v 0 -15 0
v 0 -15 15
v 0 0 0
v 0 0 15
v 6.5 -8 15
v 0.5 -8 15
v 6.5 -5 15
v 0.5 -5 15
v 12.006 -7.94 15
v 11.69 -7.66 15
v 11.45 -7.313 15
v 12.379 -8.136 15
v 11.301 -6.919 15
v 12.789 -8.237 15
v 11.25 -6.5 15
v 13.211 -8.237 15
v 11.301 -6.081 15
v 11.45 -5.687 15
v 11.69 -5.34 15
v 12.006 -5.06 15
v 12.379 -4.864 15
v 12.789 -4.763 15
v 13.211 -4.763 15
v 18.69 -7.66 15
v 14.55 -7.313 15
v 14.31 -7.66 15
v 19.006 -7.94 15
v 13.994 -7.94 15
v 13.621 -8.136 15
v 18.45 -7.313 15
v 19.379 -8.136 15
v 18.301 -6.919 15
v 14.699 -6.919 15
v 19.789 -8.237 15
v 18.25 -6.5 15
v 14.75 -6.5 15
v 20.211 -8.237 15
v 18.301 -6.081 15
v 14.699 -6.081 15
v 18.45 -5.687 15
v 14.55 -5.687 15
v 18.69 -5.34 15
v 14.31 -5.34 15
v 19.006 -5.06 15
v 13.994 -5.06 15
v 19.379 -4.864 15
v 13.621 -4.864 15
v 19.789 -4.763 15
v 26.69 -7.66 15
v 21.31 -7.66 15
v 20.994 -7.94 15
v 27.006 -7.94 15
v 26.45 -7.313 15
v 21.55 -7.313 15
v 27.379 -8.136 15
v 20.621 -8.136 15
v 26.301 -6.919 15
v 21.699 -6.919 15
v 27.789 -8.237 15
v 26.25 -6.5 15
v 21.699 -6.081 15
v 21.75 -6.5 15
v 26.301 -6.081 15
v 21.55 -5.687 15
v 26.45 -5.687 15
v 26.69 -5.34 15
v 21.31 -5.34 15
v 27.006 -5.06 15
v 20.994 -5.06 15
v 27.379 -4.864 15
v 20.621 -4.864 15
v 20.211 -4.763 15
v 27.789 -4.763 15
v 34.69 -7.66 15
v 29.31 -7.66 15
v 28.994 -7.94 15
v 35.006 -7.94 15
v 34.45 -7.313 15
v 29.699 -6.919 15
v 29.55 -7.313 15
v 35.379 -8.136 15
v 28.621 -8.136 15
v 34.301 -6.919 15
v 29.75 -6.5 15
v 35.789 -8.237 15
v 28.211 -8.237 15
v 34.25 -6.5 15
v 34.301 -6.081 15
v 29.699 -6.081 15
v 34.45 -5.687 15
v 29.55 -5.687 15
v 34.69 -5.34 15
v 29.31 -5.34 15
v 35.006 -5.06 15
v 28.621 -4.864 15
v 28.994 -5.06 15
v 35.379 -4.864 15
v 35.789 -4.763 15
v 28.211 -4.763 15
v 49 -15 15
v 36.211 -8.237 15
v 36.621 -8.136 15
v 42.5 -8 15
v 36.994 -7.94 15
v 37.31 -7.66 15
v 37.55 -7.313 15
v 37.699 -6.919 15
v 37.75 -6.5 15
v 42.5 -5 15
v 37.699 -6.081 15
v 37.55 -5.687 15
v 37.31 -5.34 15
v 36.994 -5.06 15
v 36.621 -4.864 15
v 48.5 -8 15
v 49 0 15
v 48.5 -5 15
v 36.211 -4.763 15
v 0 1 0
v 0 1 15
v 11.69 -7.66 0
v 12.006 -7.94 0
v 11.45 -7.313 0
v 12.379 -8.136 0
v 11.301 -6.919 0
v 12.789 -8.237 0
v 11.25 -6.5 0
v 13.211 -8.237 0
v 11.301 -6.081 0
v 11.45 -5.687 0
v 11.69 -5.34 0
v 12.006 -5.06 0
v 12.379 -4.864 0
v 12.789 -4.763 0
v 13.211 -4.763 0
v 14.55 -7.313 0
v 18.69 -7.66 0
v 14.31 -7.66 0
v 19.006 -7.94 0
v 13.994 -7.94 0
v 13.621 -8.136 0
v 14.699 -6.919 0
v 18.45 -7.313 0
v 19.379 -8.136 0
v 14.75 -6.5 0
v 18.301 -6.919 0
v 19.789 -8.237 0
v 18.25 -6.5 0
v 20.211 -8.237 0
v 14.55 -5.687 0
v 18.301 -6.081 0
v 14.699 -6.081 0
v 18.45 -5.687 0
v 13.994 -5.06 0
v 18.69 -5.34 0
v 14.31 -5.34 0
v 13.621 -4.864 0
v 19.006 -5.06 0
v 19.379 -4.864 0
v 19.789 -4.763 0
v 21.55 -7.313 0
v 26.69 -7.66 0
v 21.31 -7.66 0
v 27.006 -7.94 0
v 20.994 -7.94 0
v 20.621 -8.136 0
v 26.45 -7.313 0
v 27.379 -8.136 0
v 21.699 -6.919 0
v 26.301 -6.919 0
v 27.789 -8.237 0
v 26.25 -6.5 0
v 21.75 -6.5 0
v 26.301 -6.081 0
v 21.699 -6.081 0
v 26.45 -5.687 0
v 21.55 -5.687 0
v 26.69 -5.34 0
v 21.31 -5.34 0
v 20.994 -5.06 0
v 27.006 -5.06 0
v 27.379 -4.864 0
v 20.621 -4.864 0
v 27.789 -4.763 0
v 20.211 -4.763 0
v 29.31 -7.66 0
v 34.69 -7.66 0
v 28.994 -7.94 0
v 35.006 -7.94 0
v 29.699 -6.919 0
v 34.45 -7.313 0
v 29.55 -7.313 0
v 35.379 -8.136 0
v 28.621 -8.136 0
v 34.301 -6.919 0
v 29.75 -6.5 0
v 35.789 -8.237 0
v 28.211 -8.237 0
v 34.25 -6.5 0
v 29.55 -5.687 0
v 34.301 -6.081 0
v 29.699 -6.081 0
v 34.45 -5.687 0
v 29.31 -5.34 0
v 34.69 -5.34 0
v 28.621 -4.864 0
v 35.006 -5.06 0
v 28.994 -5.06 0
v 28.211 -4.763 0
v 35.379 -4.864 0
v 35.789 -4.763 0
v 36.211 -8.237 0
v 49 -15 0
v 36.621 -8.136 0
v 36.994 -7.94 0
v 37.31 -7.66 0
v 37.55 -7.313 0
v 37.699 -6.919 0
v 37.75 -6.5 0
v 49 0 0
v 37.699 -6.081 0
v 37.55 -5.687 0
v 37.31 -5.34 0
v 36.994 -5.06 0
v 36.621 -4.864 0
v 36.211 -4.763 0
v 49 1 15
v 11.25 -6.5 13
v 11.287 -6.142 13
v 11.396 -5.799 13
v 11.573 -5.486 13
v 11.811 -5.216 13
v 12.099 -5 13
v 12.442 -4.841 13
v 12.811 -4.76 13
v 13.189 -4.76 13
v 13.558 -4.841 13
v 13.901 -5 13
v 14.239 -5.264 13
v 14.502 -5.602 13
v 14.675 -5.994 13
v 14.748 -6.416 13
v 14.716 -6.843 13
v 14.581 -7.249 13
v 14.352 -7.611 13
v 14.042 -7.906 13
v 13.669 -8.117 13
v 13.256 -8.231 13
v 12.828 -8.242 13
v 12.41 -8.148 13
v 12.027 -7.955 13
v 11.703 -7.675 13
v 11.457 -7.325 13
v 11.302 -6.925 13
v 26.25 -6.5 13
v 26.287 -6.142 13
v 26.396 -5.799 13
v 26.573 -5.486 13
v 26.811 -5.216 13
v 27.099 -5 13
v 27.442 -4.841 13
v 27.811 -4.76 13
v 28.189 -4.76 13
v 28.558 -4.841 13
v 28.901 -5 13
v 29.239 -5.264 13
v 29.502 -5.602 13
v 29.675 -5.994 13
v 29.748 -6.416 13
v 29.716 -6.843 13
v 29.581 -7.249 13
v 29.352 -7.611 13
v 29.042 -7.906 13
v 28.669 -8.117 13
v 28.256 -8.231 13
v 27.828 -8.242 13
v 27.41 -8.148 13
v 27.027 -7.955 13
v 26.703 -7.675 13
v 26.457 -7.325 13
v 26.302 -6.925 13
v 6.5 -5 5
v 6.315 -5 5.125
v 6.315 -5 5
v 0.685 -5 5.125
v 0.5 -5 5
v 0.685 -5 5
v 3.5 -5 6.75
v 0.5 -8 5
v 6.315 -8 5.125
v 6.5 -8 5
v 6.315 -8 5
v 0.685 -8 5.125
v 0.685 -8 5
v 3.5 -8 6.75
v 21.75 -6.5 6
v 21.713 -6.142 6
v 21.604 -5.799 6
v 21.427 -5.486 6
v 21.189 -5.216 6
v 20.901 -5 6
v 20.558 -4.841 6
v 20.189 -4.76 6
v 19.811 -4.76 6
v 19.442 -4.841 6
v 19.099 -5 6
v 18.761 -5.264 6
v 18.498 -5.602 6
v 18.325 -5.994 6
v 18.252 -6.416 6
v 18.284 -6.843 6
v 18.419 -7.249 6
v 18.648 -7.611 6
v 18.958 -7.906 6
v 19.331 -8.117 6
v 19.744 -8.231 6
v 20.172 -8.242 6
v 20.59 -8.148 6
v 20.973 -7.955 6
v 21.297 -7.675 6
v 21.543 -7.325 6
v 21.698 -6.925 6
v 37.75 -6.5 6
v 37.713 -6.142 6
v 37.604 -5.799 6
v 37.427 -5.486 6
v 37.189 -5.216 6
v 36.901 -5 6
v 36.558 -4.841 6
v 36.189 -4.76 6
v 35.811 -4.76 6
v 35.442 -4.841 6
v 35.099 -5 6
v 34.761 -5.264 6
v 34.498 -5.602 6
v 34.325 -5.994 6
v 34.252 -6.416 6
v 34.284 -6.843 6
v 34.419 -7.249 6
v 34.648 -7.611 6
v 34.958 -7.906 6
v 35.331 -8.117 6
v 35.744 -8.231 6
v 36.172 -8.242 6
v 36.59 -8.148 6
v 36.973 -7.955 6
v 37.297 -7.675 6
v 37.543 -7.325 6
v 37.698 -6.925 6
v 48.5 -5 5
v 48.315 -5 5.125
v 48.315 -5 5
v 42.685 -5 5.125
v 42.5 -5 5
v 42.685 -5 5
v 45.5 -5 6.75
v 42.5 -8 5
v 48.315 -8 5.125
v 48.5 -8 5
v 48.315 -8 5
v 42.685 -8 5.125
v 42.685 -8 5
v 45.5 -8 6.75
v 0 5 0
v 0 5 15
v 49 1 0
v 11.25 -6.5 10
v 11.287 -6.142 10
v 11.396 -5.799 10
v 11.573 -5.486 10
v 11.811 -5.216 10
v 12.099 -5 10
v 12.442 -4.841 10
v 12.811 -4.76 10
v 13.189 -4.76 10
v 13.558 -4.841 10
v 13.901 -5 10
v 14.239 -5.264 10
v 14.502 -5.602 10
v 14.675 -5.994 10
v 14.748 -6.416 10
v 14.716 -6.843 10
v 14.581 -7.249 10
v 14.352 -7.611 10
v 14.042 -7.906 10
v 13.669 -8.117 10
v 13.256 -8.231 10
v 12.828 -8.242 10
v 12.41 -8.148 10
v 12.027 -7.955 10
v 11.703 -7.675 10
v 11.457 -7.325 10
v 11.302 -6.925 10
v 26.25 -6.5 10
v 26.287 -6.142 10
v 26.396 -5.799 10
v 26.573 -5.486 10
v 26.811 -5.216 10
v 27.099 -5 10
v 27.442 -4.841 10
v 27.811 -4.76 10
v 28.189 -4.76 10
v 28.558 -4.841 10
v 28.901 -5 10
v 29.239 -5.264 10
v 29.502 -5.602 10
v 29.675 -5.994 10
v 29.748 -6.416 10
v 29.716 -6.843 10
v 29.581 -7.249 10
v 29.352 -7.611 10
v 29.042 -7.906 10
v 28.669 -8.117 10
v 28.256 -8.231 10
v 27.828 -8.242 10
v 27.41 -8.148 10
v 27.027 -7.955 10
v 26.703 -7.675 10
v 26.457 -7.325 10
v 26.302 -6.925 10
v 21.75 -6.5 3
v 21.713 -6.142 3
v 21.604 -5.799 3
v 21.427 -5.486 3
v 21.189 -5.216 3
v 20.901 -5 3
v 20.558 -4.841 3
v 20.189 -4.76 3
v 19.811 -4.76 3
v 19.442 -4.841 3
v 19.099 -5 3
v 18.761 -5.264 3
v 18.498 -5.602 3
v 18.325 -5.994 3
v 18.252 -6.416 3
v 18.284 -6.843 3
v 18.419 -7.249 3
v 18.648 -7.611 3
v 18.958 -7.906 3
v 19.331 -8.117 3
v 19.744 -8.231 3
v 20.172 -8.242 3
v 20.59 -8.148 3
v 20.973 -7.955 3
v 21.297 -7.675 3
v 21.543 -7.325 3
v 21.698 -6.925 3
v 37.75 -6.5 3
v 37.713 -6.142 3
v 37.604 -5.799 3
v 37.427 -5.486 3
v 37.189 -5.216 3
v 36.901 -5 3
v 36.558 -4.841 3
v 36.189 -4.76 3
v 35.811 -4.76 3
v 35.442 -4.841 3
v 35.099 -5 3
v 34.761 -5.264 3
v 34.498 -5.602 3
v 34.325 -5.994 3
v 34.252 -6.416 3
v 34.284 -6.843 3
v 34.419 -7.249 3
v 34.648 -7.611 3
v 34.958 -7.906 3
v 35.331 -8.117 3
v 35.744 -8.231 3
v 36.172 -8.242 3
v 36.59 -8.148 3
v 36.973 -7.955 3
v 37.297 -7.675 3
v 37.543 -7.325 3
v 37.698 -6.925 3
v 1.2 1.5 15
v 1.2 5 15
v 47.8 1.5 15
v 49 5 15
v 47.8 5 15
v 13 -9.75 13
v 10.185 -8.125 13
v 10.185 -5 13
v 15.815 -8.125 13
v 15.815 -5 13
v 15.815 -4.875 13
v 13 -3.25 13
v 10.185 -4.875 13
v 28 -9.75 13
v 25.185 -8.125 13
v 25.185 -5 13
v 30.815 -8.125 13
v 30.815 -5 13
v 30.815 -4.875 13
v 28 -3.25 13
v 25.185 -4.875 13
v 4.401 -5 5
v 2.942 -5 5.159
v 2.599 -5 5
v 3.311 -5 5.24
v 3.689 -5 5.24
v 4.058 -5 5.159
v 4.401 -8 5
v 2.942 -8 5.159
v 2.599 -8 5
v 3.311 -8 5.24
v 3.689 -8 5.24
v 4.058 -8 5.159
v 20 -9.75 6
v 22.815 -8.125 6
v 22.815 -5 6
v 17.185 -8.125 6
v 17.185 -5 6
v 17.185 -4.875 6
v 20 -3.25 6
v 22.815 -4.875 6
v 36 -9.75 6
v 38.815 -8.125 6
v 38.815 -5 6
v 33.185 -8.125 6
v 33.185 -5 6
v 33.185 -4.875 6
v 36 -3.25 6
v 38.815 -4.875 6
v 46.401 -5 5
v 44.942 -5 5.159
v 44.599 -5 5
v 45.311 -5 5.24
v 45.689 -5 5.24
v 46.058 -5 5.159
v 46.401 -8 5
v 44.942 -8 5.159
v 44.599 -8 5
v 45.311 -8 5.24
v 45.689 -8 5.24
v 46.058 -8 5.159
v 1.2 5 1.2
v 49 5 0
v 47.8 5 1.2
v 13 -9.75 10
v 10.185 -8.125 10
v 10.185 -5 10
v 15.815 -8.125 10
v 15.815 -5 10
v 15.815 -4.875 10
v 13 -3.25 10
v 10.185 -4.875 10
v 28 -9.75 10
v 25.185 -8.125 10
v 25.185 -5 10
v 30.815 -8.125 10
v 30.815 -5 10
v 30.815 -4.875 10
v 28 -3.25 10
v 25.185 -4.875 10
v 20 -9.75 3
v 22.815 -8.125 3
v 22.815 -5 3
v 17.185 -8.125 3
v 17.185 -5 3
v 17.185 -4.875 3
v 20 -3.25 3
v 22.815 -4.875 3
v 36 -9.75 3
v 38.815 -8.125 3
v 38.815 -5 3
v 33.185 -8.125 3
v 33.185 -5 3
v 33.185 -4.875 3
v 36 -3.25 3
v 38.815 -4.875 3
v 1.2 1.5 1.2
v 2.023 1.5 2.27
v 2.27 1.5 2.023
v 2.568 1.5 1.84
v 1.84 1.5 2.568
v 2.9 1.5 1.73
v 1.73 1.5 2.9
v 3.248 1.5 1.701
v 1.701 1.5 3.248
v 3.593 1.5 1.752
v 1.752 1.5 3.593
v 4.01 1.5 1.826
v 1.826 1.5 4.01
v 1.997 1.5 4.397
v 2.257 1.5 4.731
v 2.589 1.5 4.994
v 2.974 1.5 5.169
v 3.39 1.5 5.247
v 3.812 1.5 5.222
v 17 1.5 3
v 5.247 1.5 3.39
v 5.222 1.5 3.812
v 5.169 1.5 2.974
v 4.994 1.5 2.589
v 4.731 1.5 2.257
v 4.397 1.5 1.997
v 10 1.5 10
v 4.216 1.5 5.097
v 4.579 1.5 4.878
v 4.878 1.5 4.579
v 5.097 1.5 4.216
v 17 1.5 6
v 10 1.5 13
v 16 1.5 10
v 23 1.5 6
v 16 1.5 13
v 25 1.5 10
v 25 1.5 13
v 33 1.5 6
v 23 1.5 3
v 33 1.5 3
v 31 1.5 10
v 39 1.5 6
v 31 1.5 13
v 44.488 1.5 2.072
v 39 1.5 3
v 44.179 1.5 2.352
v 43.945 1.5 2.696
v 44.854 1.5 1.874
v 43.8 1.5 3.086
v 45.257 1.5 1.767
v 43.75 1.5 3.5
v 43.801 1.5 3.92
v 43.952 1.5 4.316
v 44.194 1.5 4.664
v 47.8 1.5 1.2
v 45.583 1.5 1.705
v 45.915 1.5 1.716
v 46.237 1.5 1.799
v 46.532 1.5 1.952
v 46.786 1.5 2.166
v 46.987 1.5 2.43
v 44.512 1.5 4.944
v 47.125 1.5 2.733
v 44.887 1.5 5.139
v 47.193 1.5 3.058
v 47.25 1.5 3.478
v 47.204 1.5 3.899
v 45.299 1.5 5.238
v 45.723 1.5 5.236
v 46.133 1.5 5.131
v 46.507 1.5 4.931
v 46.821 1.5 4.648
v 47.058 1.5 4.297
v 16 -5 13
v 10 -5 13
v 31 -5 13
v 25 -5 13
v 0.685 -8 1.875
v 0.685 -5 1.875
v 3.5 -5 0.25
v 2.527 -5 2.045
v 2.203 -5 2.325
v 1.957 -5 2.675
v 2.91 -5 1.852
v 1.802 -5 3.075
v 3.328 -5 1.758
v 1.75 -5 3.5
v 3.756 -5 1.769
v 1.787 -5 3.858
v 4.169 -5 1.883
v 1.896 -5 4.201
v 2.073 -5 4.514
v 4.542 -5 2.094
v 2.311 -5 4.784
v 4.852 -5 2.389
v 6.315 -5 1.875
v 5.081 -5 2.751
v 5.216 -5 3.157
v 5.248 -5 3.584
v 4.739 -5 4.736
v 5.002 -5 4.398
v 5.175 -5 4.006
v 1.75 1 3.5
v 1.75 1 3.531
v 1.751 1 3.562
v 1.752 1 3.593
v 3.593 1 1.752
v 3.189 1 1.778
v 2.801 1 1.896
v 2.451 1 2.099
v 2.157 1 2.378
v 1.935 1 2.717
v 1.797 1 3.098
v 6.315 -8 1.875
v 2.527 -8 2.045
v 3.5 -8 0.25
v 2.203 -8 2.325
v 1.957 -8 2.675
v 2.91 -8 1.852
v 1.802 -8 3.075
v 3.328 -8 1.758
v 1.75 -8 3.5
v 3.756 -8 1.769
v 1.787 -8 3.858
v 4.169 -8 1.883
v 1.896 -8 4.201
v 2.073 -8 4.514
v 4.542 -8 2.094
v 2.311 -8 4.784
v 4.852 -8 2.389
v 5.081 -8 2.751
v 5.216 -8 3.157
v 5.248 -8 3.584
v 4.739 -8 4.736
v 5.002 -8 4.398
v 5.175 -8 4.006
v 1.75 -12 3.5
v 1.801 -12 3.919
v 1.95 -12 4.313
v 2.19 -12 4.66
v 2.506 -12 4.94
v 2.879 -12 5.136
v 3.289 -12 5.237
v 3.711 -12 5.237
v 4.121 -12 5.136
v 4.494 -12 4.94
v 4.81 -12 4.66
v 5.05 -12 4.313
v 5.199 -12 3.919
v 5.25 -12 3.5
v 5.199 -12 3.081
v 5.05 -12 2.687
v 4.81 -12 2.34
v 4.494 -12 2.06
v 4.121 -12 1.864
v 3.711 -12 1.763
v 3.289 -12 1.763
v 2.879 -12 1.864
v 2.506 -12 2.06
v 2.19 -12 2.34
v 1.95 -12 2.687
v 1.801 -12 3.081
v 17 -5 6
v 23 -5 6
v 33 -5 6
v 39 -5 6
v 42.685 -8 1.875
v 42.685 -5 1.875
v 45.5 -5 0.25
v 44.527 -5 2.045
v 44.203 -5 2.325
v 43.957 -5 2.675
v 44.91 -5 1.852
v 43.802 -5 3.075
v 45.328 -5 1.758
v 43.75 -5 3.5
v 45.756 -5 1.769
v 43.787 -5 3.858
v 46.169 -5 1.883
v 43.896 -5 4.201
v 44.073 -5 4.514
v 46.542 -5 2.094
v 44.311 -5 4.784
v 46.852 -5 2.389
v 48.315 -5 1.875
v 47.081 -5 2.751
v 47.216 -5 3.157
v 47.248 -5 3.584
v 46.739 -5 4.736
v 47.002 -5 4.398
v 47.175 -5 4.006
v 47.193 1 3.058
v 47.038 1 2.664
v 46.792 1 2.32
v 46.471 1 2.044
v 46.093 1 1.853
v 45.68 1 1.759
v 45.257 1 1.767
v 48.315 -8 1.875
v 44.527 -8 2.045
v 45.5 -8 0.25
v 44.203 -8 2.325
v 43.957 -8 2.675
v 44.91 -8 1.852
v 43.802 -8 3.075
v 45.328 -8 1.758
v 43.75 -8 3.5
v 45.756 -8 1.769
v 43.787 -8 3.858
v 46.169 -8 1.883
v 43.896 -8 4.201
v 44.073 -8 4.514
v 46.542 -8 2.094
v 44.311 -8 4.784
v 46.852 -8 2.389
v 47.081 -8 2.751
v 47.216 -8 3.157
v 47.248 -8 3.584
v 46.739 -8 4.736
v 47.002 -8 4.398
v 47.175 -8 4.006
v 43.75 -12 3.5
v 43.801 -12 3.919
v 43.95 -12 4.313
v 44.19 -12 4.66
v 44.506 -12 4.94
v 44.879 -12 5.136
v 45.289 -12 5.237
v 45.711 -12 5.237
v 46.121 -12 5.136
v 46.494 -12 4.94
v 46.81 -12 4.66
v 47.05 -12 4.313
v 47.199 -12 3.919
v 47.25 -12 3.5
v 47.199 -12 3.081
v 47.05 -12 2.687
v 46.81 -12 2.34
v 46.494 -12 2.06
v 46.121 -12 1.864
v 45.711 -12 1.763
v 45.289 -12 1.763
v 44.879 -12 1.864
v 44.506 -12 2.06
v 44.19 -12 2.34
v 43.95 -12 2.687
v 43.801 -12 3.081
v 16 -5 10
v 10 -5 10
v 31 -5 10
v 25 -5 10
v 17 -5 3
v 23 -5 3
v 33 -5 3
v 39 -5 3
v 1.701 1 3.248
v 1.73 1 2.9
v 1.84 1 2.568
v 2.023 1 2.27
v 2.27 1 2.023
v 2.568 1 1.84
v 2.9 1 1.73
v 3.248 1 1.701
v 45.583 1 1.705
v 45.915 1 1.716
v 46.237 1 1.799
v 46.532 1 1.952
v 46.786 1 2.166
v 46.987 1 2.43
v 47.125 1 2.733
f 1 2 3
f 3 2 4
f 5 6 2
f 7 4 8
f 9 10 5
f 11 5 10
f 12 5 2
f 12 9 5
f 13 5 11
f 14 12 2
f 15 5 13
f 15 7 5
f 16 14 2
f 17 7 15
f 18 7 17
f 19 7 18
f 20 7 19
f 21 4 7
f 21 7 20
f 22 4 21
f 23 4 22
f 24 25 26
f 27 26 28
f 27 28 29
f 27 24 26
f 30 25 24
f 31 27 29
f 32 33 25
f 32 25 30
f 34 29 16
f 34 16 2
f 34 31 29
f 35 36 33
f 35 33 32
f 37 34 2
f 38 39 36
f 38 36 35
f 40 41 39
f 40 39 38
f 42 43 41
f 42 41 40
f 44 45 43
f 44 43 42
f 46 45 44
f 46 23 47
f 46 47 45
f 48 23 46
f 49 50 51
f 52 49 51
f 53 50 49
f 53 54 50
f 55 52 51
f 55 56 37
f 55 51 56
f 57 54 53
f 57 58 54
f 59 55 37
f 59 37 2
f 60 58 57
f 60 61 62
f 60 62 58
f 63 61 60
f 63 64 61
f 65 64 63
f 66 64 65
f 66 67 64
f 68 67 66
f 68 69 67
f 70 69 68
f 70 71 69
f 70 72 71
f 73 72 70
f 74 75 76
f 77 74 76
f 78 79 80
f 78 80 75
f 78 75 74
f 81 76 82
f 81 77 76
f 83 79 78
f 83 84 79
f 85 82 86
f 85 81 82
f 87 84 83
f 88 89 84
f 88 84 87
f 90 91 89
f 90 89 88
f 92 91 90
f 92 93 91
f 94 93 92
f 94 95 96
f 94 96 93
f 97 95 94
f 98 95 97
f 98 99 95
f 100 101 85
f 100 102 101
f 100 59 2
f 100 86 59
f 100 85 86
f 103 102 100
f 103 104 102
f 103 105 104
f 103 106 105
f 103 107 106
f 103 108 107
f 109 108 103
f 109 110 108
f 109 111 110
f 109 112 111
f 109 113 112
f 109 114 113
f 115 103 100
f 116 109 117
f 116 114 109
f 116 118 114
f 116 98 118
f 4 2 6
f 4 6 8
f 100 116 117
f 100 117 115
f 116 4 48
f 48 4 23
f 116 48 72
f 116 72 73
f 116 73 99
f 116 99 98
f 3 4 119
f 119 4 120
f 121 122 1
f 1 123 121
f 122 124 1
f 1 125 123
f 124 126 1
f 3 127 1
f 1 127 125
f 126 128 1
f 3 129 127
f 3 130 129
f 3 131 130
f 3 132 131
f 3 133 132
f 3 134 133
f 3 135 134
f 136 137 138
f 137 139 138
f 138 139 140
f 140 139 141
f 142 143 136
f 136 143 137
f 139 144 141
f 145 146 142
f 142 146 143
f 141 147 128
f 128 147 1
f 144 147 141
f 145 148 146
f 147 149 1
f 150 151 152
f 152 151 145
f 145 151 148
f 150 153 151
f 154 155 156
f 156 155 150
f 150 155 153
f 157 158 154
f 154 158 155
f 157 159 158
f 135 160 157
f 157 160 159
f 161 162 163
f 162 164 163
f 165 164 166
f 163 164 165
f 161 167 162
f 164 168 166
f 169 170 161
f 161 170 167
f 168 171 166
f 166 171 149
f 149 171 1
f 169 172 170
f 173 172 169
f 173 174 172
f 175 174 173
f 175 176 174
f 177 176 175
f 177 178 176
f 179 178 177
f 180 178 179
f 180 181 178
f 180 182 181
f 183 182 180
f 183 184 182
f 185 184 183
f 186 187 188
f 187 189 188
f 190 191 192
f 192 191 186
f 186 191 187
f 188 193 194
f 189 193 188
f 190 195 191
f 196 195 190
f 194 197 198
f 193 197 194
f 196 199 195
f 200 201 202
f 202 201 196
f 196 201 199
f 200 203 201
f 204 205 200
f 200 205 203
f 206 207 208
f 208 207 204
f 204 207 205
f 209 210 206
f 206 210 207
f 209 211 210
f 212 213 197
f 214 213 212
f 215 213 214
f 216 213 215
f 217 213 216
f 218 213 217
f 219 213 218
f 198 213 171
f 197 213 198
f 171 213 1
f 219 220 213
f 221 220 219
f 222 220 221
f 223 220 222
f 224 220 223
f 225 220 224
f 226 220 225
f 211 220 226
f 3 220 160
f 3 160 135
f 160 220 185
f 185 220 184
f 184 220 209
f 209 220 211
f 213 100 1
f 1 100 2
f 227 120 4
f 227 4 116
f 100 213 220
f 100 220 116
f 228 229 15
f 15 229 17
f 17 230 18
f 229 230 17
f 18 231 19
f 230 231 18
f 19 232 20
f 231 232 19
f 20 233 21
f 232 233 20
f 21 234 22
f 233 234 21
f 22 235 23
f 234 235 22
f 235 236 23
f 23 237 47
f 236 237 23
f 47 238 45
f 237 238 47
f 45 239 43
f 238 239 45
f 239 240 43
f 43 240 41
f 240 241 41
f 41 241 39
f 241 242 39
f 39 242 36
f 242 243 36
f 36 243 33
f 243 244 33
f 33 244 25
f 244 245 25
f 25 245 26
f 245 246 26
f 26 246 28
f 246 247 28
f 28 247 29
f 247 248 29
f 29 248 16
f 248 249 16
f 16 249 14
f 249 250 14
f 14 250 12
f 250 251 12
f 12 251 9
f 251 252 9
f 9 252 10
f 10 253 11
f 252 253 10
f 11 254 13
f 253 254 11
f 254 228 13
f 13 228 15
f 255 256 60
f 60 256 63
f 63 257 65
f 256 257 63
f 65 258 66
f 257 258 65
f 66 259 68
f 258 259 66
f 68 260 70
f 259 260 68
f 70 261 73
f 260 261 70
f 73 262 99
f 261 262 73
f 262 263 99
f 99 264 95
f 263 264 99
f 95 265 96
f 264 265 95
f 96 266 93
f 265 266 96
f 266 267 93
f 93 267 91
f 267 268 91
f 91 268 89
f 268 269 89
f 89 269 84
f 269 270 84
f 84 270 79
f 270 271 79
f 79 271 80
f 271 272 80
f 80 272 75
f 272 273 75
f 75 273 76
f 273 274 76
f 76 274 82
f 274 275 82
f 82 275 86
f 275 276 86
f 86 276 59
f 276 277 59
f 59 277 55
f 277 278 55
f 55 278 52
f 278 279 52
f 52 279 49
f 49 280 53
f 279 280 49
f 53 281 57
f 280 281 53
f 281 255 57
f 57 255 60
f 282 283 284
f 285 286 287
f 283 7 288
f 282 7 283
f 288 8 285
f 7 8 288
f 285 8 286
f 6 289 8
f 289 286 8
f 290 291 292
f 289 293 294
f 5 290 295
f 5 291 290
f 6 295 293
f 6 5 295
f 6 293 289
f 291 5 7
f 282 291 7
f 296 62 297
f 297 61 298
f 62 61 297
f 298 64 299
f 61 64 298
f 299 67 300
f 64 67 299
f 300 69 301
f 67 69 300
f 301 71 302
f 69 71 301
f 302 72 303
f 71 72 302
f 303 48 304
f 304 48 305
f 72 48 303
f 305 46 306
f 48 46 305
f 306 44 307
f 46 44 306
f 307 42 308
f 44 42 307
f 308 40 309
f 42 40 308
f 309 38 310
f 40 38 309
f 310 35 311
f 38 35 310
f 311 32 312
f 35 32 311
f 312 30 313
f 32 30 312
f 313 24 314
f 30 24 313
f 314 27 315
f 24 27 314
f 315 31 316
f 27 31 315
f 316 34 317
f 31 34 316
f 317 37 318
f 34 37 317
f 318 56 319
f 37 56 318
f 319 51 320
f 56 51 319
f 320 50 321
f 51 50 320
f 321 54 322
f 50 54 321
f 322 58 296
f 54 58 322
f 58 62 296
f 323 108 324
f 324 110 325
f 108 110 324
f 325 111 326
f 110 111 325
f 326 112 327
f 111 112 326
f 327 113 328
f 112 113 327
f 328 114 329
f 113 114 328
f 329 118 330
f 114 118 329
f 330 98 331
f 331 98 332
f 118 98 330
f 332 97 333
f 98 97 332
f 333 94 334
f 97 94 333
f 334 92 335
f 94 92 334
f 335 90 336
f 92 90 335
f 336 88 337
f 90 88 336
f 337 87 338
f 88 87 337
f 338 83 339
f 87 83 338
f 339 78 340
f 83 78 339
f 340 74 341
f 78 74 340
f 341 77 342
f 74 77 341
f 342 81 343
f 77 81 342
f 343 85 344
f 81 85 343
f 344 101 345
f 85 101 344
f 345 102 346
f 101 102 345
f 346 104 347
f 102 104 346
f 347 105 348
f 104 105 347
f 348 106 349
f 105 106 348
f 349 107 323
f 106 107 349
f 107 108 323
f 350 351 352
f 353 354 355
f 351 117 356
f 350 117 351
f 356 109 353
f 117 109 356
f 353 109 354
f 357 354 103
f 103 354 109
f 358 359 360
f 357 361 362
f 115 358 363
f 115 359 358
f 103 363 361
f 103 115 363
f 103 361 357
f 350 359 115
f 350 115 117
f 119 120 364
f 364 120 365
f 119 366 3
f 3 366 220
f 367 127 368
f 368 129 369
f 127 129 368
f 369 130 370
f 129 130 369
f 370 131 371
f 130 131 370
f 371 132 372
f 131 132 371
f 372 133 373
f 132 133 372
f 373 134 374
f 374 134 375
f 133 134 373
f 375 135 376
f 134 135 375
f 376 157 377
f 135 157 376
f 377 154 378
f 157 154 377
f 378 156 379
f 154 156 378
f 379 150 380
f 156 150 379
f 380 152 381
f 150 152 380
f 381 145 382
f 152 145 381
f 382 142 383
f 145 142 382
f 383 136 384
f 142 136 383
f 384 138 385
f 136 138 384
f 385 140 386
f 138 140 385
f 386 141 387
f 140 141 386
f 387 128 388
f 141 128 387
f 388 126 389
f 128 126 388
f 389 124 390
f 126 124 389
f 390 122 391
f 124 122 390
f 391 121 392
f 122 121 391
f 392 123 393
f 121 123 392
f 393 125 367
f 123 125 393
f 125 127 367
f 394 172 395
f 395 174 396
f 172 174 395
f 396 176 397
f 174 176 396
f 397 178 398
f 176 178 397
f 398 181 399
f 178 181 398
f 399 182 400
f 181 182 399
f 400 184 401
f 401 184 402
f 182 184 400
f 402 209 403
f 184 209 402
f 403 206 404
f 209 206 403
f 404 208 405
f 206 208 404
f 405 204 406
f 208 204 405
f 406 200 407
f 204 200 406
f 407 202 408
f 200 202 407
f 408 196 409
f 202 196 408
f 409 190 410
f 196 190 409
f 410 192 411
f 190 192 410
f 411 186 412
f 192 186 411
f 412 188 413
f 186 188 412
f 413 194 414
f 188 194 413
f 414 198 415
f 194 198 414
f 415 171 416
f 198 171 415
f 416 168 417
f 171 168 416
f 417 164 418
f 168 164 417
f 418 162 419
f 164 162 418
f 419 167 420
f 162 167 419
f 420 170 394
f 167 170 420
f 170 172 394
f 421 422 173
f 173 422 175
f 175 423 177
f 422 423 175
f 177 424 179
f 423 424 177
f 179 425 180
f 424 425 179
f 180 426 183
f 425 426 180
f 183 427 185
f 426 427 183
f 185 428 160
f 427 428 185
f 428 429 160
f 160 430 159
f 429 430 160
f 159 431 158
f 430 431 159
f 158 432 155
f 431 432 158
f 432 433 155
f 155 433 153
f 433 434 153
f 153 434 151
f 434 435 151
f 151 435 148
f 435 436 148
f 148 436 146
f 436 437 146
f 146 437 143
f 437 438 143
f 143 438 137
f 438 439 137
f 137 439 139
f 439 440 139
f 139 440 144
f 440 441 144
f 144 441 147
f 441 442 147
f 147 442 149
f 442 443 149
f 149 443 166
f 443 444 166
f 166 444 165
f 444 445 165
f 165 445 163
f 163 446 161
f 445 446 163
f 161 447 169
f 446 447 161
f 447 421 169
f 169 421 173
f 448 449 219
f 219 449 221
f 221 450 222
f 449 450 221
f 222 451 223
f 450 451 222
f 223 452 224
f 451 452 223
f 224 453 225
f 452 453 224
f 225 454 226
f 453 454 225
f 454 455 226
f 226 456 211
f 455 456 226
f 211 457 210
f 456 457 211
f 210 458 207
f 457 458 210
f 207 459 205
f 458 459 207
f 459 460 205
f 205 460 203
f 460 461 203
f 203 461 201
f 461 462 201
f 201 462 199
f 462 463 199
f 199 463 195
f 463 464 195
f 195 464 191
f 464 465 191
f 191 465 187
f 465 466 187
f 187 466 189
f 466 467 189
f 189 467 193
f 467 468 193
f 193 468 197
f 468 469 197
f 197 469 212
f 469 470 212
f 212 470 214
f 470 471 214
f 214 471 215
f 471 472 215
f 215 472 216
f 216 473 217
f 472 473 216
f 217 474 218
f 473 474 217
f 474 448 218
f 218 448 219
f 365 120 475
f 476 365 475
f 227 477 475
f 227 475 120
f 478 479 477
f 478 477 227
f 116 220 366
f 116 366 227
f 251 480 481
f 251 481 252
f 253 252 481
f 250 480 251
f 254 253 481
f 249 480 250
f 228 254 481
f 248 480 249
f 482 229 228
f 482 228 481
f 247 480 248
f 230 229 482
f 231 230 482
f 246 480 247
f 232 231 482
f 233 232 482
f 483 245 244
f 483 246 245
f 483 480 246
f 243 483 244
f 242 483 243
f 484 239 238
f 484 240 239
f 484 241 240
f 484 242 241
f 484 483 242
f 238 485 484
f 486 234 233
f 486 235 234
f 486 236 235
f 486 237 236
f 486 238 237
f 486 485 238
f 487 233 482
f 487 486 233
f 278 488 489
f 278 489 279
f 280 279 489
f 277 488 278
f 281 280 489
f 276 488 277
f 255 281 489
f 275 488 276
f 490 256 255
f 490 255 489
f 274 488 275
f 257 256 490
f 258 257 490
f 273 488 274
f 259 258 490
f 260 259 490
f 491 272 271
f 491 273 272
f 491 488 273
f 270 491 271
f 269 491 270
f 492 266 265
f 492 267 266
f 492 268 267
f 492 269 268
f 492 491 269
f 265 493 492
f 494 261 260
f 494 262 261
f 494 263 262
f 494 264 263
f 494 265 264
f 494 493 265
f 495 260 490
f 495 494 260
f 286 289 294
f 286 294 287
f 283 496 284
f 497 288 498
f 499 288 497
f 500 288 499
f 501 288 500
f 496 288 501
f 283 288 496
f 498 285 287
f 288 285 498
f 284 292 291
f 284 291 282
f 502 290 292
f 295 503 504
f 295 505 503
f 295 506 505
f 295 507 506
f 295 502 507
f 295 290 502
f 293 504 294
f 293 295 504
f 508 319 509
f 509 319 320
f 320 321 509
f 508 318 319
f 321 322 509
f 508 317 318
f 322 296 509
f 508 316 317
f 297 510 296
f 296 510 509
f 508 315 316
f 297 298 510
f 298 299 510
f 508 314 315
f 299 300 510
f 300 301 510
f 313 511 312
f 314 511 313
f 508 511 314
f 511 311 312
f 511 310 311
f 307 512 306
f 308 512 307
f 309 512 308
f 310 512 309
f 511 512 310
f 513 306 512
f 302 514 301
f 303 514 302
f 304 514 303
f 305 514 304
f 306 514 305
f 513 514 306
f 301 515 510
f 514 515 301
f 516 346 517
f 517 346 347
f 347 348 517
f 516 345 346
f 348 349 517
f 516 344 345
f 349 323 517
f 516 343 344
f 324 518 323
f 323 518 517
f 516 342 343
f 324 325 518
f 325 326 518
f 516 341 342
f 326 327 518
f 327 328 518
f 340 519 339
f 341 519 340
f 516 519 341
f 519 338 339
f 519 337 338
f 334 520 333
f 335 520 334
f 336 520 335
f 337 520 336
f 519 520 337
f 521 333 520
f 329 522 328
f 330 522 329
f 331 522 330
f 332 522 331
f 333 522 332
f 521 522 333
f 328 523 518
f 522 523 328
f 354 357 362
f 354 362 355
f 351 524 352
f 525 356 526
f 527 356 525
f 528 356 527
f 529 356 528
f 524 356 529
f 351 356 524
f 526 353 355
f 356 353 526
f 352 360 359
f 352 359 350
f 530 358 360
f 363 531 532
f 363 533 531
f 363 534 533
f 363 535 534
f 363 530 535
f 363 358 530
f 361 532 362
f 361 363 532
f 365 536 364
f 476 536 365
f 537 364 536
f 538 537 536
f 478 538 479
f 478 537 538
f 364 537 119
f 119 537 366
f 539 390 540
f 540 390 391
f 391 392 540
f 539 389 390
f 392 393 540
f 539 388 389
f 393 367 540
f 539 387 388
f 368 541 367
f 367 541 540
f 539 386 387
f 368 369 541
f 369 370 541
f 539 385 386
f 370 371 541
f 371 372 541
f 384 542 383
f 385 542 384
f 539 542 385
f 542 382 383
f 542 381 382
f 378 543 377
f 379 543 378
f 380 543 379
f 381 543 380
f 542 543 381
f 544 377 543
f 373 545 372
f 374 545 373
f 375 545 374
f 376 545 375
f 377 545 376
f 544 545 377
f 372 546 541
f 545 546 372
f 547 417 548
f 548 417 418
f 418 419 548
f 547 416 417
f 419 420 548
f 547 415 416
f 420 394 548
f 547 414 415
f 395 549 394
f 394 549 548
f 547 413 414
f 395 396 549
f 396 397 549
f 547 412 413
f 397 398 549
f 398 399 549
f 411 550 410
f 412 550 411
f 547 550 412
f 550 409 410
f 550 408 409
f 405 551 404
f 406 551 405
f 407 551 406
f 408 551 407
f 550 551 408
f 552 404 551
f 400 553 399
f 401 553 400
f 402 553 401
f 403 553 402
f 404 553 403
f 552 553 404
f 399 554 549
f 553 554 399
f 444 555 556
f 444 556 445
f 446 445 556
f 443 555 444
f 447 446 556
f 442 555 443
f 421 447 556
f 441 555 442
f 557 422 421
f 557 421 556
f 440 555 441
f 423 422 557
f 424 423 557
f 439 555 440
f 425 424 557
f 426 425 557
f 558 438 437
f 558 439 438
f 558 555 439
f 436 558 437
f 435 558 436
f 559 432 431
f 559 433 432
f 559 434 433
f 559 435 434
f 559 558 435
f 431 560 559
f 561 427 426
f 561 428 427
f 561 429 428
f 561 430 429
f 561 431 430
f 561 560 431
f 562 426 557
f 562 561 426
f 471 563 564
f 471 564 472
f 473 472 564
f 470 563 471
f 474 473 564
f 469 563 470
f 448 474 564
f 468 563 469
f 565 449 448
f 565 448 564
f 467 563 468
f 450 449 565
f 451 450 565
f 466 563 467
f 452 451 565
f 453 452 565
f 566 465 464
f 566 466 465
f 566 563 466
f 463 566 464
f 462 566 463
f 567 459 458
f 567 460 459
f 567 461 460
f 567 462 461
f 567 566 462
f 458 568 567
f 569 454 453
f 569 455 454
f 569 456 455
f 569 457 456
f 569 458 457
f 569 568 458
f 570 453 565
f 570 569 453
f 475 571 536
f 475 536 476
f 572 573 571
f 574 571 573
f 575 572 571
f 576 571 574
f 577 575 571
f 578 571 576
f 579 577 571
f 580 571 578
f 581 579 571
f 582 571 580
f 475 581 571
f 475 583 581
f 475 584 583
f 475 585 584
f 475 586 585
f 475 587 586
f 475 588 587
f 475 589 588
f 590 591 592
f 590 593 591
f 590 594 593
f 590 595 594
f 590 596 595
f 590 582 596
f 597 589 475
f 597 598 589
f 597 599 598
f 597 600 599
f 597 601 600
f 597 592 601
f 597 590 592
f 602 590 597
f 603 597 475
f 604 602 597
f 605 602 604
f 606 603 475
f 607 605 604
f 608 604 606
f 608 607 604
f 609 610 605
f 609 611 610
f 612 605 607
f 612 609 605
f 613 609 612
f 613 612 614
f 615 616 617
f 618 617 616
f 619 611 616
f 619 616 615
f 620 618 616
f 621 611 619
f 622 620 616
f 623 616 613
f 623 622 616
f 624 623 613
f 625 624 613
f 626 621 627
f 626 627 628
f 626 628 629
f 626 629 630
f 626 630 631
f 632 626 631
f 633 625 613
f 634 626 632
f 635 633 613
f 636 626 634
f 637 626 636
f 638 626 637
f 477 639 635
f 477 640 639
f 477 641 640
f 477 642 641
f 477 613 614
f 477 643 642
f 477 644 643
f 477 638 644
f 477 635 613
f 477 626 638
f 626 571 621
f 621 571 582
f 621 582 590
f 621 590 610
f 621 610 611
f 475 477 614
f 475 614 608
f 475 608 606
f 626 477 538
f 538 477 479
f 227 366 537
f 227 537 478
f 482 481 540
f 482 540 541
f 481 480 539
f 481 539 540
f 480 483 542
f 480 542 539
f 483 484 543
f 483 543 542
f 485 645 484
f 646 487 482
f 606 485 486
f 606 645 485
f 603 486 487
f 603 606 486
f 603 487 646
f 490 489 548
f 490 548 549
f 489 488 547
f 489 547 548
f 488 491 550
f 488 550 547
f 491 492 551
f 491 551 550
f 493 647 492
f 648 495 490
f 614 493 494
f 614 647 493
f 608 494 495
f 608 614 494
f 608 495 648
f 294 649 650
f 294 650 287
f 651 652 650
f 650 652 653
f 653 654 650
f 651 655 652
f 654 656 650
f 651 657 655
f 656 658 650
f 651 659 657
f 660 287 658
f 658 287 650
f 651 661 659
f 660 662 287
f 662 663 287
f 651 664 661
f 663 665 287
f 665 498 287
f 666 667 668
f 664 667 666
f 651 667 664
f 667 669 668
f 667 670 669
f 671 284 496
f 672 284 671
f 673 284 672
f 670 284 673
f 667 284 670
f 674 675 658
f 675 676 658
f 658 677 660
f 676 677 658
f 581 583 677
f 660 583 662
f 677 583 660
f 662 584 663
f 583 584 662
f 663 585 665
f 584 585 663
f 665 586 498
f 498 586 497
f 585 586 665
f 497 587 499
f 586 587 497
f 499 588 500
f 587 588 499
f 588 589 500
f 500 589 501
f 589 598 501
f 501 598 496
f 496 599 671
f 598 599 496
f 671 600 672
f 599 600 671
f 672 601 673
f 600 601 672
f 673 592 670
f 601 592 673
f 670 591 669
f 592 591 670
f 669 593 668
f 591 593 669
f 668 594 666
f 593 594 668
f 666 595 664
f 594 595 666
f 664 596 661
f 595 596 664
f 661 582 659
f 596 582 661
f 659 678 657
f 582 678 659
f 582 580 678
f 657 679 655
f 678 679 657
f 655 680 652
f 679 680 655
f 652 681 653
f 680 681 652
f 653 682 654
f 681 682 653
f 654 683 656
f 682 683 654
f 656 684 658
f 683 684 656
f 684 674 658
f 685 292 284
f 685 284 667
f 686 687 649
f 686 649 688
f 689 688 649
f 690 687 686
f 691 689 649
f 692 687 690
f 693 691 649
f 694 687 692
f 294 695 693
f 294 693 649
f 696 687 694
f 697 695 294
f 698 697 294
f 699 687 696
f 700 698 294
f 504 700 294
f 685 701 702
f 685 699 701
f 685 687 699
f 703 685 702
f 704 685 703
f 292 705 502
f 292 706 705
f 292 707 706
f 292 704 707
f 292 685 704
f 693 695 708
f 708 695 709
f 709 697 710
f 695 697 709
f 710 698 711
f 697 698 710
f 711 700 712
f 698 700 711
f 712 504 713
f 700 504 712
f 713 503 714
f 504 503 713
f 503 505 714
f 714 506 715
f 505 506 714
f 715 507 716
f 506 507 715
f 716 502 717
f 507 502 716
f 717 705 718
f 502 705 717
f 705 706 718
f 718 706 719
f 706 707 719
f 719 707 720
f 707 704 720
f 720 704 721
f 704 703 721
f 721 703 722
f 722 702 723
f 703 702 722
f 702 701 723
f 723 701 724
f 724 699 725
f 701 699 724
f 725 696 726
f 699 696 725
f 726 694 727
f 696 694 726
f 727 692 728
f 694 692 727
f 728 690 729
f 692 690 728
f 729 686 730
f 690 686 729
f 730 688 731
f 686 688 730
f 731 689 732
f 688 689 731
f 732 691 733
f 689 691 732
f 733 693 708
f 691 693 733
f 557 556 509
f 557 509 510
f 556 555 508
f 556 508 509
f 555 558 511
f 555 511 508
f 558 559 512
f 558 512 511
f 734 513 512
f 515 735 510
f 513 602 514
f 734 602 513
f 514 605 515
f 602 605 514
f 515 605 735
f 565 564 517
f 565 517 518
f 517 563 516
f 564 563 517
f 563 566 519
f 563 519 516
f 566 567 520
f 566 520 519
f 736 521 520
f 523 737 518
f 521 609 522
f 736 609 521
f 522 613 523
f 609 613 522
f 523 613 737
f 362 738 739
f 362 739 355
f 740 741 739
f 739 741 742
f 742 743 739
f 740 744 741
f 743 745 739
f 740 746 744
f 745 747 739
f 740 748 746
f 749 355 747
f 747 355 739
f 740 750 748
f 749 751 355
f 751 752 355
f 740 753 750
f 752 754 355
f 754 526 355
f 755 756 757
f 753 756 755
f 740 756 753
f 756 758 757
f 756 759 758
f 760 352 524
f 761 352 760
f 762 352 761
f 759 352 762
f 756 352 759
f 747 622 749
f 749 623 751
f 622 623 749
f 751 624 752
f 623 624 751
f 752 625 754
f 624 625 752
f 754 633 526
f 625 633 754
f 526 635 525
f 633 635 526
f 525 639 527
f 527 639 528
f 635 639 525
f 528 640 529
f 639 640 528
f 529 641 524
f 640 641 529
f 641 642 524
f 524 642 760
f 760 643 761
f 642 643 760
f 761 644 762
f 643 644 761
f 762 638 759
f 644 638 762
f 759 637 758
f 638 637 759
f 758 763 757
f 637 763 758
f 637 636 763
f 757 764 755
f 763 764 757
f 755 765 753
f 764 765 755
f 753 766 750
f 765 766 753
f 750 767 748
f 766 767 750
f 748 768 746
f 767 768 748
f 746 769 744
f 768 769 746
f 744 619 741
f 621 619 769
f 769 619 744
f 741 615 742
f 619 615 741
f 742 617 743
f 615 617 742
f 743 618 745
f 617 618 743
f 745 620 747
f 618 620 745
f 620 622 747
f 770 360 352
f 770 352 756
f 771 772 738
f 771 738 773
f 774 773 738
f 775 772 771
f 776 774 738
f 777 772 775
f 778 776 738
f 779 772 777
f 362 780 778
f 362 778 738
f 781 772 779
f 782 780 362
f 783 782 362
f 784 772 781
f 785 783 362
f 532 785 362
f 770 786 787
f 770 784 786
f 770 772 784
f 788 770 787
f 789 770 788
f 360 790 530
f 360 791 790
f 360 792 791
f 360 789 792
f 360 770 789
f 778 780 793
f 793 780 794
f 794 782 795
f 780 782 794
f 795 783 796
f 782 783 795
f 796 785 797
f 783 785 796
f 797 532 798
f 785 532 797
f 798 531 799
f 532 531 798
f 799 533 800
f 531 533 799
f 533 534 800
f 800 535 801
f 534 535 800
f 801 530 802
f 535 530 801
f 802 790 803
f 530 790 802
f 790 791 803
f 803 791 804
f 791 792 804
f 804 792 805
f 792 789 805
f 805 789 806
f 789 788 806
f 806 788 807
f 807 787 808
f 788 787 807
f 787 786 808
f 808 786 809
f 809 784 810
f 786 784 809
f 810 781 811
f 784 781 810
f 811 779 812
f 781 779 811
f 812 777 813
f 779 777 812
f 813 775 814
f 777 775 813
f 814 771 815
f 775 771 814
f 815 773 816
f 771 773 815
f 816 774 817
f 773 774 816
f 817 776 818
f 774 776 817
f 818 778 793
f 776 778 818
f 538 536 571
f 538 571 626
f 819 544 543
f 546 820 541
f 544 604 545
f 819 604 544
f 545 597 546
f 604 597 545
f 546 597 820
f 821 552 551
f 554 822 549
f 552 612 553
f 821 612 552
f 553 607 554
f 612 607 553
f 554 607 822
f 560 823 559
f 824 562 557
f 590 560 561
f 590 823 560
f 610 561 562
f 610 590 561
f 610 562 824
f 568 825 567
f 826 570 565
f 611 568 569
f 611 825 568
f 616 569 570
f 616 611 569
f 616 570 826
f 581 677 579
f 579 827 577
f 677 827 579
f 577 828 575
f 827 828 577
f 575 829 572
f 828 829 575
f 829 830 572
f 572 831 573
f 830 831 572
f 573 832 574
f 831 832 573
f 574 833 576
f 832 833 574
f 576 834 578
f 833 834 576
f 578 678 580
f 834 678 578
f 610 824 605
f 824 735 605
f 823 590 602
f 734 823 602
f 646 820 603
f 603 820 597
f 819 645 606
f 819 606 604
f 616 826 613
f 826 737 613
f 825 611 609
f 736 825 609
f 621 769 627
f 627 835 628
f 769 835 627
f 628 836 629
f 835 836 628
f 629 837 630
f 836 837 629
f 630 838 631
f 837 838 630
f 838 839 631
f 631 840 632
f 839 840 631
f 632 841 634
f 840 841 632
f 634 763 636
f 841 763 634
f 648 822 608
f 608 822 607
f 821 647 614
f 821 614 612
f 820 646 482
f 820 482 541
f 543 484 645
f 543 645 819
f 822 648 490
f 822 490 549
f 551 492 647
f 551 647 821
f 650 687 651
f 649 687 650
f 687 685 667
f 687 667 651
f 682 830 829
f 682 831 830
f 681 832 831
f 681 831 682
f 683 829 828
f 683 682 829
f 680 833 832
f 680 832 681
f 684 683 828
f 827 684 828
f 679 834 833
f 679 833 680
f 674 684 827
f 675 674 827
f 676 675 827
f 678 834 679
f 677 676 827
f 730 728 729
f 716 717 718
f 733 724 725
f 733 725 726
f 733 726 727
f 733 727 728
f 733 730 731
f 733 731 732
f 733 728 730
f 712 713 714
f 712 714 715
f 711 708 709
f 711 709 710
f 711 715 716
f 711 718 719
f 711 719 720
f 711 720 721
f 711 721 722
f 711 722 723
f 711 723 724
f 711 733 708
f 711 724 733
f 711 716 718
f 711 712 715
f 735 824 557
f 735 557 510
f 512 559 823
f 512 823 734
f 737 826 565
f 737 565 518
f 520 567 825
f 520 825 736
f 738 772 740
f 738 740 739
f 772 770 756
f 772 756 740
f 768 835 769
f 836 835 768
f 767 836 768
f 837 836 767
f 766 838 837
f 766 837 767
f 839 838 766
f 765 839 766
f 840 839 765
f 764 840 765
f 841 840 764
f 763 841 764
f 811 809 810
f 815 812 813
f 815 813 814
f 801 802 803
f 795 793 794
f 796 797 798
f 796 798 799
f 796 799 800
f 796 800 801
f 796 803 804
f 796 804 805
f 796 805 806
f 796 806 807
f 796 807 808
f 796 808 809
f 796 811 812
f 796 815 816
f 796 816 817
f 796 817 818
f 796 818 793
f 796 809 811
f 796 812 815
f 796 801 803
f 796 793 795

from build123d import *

# Parameters (mm, degrees)
PRISM004_DEPTH            = 3
CYLINDER006_R             = 1.75
CYLINDER006_DEPTH         = 20
BOX006_W                  = 6
BOX006_H                  = 20
BOX006_DEPTH              = 3
FUSION004_PLACEMENT_ANGLE = 180
PRISM005_DEPTH            = 3
CYLINDER007_R             = 1.75
CYLINDER007_DEPTH         = 20
BOX007_W                  = 6
BOX007_H                  = 20
BOX007_DEPTH              = 3
FUSION005_PLACEMENT_ANGLE = 180
PRISM002_DEPTH            = 3
CYLINDER004_R             = 1.75
CYLINDER004_DEPTH         = 20
BOX003_W                  = 6
BOX003_H                  = 20
BOX003_DEPTH              = 3
FUSION001_PLACEMENT_ANGLE = 180
PRISM003_DEPTH            = 3
CYLINDER005_R             = 1.75
CYLINDER005_DEPTH         = 20
BOX005_W                  = 6
BOX005_H                  = 20
BOX005_DEPTH              = 3
FUSION002_PLACEMENT_ANGLE = 180
FUSION007_PLACEMENT_ANGLE = 180
PRISM006_DEPTH            = 3
CYLINDER008_R             = 1.75
CYLINDER008_DEPTH         = 20
BOX008_W                  = 6
BOX008_H                  = 20
BOX008_DEPTH              = 3
FUSION008_ROLL_ANGLE      = 90
FUSION008_PLACEMENT_ANGLE = 180
PRISM007_DEPTH            = 3
CYLINDER009_R             = 1.75
CYLINDER009_DEPTH         = 20
BOX009_W                  = 6
BOX009_H                  = 20
BOX009_DEPTH              = 3
FUSION009_ROLL_ANGLE      = 90
FUSION009_PLACEMENT_ANGLE = 180
CYLINDER001_R             = 1.5
CYLINDER001_DEPTH         = 10
CYLINDER_R                = 1.5
CYLINDER_DEPTH            = 10
BOX001_W                  = 46.6
BOX001_H                  = 10
BOX001_DEPTH              = 21
BOX_W                     = 49
BOX_H                     = 5
BOX_DEPTH                 = 15
BOX004_W                  = 49
BOX004_H                  = 16
BOX004_DEPTH              = 15


with BuildPart() as prisma004:
    # Prism004 → Prism004 (new body)
    with BuildSketch(Plane(origin=(34, 7.5, 3), x_dir=(0, 1, 0), z_dir=(0, 0, 1))):
        Polygon((3.25, 0), (1.625, 2.814583), (-1.625, 2.814583), (-3.25, 0), (-1.625, -2.814583), (1.625, -2.814583), align=None)
    extrude(amount=PRISM004_DEPTH)


with BuildPart() as cilindro006:
    # Cylinder006 → Cylinder006 (new body)
    with BuildSketch(Plane(origin=(34, 7.5, -1), x_dir=(1, 0, 0), z_dir=(0, 0, 1))):
        Circle(CYLINDER006_R)
    extrude(amount=CYLINDER006_DEPTH)


with BuildPart() as fusion004:
    # Box006 → Box006 (new body)
    with BuildSketch(Plane(origin=(31, 9, 3), x_dir=(1, 0, 0), z_dir=(0, 0, 1))):
        with Locations((3, 10)):
            Rectangle(BOX006_W, BOX006_H)
    extrude(amount=BOX006_DEPTH)

    # Fusion004: union Prisma004, Cilindro006
    add(prisma004.part)
    add(cilindro006.part)


with BuildPart() as fusion004_1:
    # Fusion004 placement: moved
    add(fusion004.part.moved(Location((-14, -3, 16))).rotate(Axis((-14, -3, 16), (1, 0, 0)), FUSION004_PLACEMENT_ANGLE))


with BuildPart() as prisma005:
    # Prism005 → Prism005 (new body)
    with BuildSketch(Plane(origin=(34, 7.5, 3), x_dir=(0, 1, 0), z_dir=(0, 0, 1))):
        Polygon((3.25, 0), (1.625, 2.814583), (-1.625, 2.814583), (-3.25, 0), (-1.625, -2.814583), (1.625, -2.814583), align=None)
    extrude(amount=PRISM005_DEPTH)


with BuildPart() as cilindro007:
    # Cylinder007 → Cylinder007 (new body)
    with BuildSketch(Plane(origin=(34, 7.5, -1), x_dir=(1, 0, 0), z_dir=(0, 0, 1))):
        Circle(CYLINDER007_R)
    extrude(amount=CYLINDER007_DEPTH)


with BuildPart() as fusion006:
    # Box007 → Box007 (new body)
    with BuildSketch(Plane(origin=(31, 9, 3), x_dir=(1, 0, 0), z_dir=(0, 0, 1))):
        with Locations((3, 10)):
            Rectangle(BOX007_W, BOX007_H)
    extrude(amount=BOX007_DEPTH)

    # Fusion005: union Prisma005, Cilindro007
    add(prisma005.part)
    add(cilindro007.part)


with BuildPart() as fusion006_1:
    # Fusion005 placement: moved
    add(fusion006.part.moved(Location((2, -3, 16))).rotate(Axis((2, -3, 16), (1, 0, 0)), FUSION005_PLACEMENT_ANGLE))

    # Fusion006: union Fusion004
    add(fusion004_1.part)


with BuildPart() as prisma002:
    # Prism002 → Prism002 (new body)
    with BuildSketch(Plane(origin=(34, 7.5, 3), x_dir=(0, 1, 0), z_dir=(0, 0, 1))):
        Polygon((3.25, 0), (1.625, 2.814583), (-1.625, 2.814583), (-3.25, 0), (-1.625, -2.814583), (1.625, -2.814583), align=None)
    extrude(amount=PRISM002_DEPTH)


with BuildPart() as cilindro004:
    # Cylinder004 → Cylinder004 (new body)
    with BuildSketch(Plane(origin=(34, 7.5, -1), x_dir=(1, 0, 0), z_dir=(0, 0, 1))):
        Circle(CYLINDER004_R)
    extrude(amount=CYLINDER004_DEPTH)


with BuildPart() as fusion001:
    # Box003 → Box003 (new body)
    with BuildSketch(Plane(origin=(31, 9, 3), x_dir=(1, 0, 0), z_dir=(0, 0, 1))):
        with Locations((3, 10)):
            Rectangle(BOX003_W, BOX003_H)
    extrude(amount=BOX003_DEPTH)

    # Fusion001: union Prisma002, Cilindro004
    add(prisma002.part)
    add(cilindro004.part)


with BuildPart() as fusion001_1:
    # Fusion001 placement: moved
    add(fusion001.part.moved(Location((47, -3, 0))).rotate(Axis((47, -3, 0), (0, 0, 1)), FUSION001_PLACEMENT_ANGLE))


with BuildPart() as prisma003:
    # Prism003 → Prism003 (new body)
    with BuildSketch(Plane(origin=(34, 7.5, 3), x_dir=(0, 1, 0), z_dir=(0, 0, 1))):
        Polygon((3.25, 0), (1.625, 2.814583), (-1.625, 2.814583), (-3.25, 0), (-1.625, -2.814583), (1.625, -2.814583), align=None)
    extrude(amount=PRISM003_DEPTH)


with BuildPart() as cilindro005:
    # Cylinder005 → Cylinder005 (new body)
    with BuildSketch(Plane(origin=(34, 7.5, -1), x_dir=(1, 0, 0), z_dir=(0, 0, 1))):
        Circle(CYLINDER005_R)
    extrude(amount=CYLINDER005_DEPTH)


with BuildPart() as fusion007:
    # Box005 → Box005 (new body)
    with BuildSketch(Plane(origin=(31, 9, 3), x_dir=(1, 0, 0), z_dir=(0, 0, 1))):
        with Locations((3, 10)):
            Rectangle(BOX005_W, BOX005_H)
    extrude(amount=BOX005_DEPTH)

    # Fusion002: union Prisma003, Cilindro005
    add(prisma003.part)
    add(cilindro005.part)


with BuildPart() as fusion007_1:
    # Fusion002 placement: moved
    add(fusion007.part.moved(Location((62, -3, 0))).rotate(Axis((62, -3, 0), (0, 0, 1)), FUSION002_PLACEMENT_ANGLE))

    # Fusion003: union Fusion001
    add(fusion001_1.part)

    # Fusion007: union Fusion006
    add(fusion006_1.part)


with BuildPart() as fusion007_2:
    # Fusion007 placement: moved
    add(fusion007_1.part.moved(Location((0, -17, 16))).rotate(Axis((0, -17, 16), (1, 0, 0)), FUSION007_PLACEMENT_ANGLE))


with BuildPart() as prisma006:
    # Prism006 → Prism006 (new body)
    with BuildSketch(Plane(origin=(34, 7.5, 3), x_dir=(0, 1, 0), z_dir=(0, 0, 1))):
        Polygon((3.25, 0), (1.625, 2.814583), (-1.625, 2.814583), (-3.25, 0), (-1.625, -2.814583), (1.625, -2.814583), align=None)
    extrude(amount=PRISM006_DEPTH)


with BuildPart() as cilindro008:
    # Cylinder008 → Cylinder008 (new body)
    with BuildSketch(Plane(origin=(34, 7.5, -1), x_dir=(1, 0, 0), z_dir=(0, 0, 1))):
        Circle(CYLINDER008_R)
    extrude(amount=CYLINDER008_DEPTH)


with BuildPart() as fusion008:
    # Box008 → Box008 (new body)
    with BuildSketch(Plane(origin=(31, 9, 3), x_dir=(1, 0, 0), z_dir=(0, 0, 1))):
        with Locations((3, 10)):
            Rectangle(BOX008_W, BOX008_H)
    extrude(amount=BOX008_DEPTH)

    # Fusion008: union Prisma006, Cilindro008
    add(prisma006.part)
    add(cilindro008.part)


with BuildPart() as fusion008_1:
    # Fusion008 roll: moved
    add(fusion008.part.rotate(Axis((0, 0, 0), (1, 0, 0)), FUSION008_ROLL_ANGLE))


with BuildPart() as fusion008_2:
    # Fusion008 placement: moved
    add(fusion008_1.part.moved(Location((37.5, -11, -4))).rotate(Axis((37.5, -11, -4), (0, 0, 1)), FUSION008_PLACEMENT_ANGLE))


with BuildPart() as prisma007:
    # Prism007 → Prism007 (new body)
    with BuildSketch(Plane(origin=(34, 7.5, 3), x_dir=(0, 1, 0), z_dir=(0, 0, 1))):
        Polygon((3.25, 0), (1.625, 2.814583), (-1.625, 2.814583), (-3.25, 0), (-1.625, -2.814583), (1.625, -2.814583), align=None)
    extrude(amount=PRISM007_DEPTH)


with BuildPart() as cilindro009:
    # Cylinder009 → Cylinder009 (new body)
    with BuildSketch(Plane(origin=(34, 7.5, -1), x_dir=(1, 0, 0), z_dir=(0, 0, 1))):
        Circle(CYLINDER009_R)
    extrude(amount=CYLINDER009_DEPTH)


with BuildPart() as fusion011:
    # Box009 → Box009 (new body)
    with BuildSketch(Plane(origin=(31, 9, 3), x_dir=(1, 0, 0), z_dir=(0, 0, 1))):
        with Locations((3, 10)):
            Rectangle(BOX009_W, BOX009_H)
    extrude(amount=BOX009_DEPTH)

    # Fusion009: union Prisma007, Cilindro009
    add(prisma007.part)
    add(cilindro009.part)


with BuildPart() as fusion011_1:
    # Fusion009 roll: moved
    add(fusion011.part.rotate(Axis((0, 0, 0), (1, 0, 0)), FUSION009_ROLL_ANGLE))


with BuildPart() as fusion011_2:
    # Fusion009 placement: moved
    add(fusion011_1.part.moved(Location((79.5, -11, -4))).rotate(Axis((79.5, -11, -4), (0, 0, 1)), FUSION009_PLACEMENT_ANGLE))

    # Fusion011: union Fusion007, Fusion008
    add(fusion007_2.part)
    add(fusion008_2.part)


with BuildPart() as cilindro001:
    # Cylinder001 → Cylinder001 (new body)
    with BuildSketch(Plane(origin=(45.7, 8, 3.2), x_dir=(1, 0, 0), z_dir=(0, -1, 0))):
        Circle(CYLINDER001_R)
    extrude(amount=CYLINDER001_DEPTH)


with BuildPart() as fusion:
    # Cylinder → Cylinder (new body)
    with BuildSketch(Plane(origin=(3.2, 8, 3.2), x_dir=(1, 0, 0), z_dir=(0, -1, 0))):
        Circle(CYLINDER_R)
    extrude(amount=CYLINDER_DEPTH)

    # Fusion: union Cilindro001
    add(cilindro001.part)


with BuildPart() as cubo001:
    # Box001 → Box001 (new body)
    with BuildSketch(Plane(origin=(1.2, 1.5, 1.2), x_dir=(1, 0, 0), z_dir=(0, 0, 1))):
        with Locations((23.3, 5)):
            Rectangle(BOX001_W, BOX001_H)
    extrude(amount=BOX001_DEPTH)


with BuildPart() as cut001:
    # Box → Box (new body)
    with BuildSketch(Plane.XY):
        with Locations((24.5, 2.5)):
            Rectangle(BOX_W, BOX_H)
    extrude(amount=BOX_DEPTH)

    # Cut: cut Cubo001
    add(cubo001.part, mode=Mode.SUBTRACT)

    # Cut001: cut Fusion
    add(fusion.part, mode=Mode.SUBTRACT)


with BuildPart() as cut002:
    # Box004 → Box004 (new body)
    with BuildSketch(Plane(origin=(0, -15, 0), x_dir=(1, 0, 0), z_dir=(0, 0, 1))):
        with Locations((24.5, 8)):
            Rectangle(BOX004_W, BOX004_H)
    extrude(amount=BOX004_DEPTH)

    # Fusion010: union Cut001
    add(cut001.part)

    # Cut002: cut Fusion011
    add(fusion011_2.part, mode=Mode.SUBTRACT)


solid = cut002.part
